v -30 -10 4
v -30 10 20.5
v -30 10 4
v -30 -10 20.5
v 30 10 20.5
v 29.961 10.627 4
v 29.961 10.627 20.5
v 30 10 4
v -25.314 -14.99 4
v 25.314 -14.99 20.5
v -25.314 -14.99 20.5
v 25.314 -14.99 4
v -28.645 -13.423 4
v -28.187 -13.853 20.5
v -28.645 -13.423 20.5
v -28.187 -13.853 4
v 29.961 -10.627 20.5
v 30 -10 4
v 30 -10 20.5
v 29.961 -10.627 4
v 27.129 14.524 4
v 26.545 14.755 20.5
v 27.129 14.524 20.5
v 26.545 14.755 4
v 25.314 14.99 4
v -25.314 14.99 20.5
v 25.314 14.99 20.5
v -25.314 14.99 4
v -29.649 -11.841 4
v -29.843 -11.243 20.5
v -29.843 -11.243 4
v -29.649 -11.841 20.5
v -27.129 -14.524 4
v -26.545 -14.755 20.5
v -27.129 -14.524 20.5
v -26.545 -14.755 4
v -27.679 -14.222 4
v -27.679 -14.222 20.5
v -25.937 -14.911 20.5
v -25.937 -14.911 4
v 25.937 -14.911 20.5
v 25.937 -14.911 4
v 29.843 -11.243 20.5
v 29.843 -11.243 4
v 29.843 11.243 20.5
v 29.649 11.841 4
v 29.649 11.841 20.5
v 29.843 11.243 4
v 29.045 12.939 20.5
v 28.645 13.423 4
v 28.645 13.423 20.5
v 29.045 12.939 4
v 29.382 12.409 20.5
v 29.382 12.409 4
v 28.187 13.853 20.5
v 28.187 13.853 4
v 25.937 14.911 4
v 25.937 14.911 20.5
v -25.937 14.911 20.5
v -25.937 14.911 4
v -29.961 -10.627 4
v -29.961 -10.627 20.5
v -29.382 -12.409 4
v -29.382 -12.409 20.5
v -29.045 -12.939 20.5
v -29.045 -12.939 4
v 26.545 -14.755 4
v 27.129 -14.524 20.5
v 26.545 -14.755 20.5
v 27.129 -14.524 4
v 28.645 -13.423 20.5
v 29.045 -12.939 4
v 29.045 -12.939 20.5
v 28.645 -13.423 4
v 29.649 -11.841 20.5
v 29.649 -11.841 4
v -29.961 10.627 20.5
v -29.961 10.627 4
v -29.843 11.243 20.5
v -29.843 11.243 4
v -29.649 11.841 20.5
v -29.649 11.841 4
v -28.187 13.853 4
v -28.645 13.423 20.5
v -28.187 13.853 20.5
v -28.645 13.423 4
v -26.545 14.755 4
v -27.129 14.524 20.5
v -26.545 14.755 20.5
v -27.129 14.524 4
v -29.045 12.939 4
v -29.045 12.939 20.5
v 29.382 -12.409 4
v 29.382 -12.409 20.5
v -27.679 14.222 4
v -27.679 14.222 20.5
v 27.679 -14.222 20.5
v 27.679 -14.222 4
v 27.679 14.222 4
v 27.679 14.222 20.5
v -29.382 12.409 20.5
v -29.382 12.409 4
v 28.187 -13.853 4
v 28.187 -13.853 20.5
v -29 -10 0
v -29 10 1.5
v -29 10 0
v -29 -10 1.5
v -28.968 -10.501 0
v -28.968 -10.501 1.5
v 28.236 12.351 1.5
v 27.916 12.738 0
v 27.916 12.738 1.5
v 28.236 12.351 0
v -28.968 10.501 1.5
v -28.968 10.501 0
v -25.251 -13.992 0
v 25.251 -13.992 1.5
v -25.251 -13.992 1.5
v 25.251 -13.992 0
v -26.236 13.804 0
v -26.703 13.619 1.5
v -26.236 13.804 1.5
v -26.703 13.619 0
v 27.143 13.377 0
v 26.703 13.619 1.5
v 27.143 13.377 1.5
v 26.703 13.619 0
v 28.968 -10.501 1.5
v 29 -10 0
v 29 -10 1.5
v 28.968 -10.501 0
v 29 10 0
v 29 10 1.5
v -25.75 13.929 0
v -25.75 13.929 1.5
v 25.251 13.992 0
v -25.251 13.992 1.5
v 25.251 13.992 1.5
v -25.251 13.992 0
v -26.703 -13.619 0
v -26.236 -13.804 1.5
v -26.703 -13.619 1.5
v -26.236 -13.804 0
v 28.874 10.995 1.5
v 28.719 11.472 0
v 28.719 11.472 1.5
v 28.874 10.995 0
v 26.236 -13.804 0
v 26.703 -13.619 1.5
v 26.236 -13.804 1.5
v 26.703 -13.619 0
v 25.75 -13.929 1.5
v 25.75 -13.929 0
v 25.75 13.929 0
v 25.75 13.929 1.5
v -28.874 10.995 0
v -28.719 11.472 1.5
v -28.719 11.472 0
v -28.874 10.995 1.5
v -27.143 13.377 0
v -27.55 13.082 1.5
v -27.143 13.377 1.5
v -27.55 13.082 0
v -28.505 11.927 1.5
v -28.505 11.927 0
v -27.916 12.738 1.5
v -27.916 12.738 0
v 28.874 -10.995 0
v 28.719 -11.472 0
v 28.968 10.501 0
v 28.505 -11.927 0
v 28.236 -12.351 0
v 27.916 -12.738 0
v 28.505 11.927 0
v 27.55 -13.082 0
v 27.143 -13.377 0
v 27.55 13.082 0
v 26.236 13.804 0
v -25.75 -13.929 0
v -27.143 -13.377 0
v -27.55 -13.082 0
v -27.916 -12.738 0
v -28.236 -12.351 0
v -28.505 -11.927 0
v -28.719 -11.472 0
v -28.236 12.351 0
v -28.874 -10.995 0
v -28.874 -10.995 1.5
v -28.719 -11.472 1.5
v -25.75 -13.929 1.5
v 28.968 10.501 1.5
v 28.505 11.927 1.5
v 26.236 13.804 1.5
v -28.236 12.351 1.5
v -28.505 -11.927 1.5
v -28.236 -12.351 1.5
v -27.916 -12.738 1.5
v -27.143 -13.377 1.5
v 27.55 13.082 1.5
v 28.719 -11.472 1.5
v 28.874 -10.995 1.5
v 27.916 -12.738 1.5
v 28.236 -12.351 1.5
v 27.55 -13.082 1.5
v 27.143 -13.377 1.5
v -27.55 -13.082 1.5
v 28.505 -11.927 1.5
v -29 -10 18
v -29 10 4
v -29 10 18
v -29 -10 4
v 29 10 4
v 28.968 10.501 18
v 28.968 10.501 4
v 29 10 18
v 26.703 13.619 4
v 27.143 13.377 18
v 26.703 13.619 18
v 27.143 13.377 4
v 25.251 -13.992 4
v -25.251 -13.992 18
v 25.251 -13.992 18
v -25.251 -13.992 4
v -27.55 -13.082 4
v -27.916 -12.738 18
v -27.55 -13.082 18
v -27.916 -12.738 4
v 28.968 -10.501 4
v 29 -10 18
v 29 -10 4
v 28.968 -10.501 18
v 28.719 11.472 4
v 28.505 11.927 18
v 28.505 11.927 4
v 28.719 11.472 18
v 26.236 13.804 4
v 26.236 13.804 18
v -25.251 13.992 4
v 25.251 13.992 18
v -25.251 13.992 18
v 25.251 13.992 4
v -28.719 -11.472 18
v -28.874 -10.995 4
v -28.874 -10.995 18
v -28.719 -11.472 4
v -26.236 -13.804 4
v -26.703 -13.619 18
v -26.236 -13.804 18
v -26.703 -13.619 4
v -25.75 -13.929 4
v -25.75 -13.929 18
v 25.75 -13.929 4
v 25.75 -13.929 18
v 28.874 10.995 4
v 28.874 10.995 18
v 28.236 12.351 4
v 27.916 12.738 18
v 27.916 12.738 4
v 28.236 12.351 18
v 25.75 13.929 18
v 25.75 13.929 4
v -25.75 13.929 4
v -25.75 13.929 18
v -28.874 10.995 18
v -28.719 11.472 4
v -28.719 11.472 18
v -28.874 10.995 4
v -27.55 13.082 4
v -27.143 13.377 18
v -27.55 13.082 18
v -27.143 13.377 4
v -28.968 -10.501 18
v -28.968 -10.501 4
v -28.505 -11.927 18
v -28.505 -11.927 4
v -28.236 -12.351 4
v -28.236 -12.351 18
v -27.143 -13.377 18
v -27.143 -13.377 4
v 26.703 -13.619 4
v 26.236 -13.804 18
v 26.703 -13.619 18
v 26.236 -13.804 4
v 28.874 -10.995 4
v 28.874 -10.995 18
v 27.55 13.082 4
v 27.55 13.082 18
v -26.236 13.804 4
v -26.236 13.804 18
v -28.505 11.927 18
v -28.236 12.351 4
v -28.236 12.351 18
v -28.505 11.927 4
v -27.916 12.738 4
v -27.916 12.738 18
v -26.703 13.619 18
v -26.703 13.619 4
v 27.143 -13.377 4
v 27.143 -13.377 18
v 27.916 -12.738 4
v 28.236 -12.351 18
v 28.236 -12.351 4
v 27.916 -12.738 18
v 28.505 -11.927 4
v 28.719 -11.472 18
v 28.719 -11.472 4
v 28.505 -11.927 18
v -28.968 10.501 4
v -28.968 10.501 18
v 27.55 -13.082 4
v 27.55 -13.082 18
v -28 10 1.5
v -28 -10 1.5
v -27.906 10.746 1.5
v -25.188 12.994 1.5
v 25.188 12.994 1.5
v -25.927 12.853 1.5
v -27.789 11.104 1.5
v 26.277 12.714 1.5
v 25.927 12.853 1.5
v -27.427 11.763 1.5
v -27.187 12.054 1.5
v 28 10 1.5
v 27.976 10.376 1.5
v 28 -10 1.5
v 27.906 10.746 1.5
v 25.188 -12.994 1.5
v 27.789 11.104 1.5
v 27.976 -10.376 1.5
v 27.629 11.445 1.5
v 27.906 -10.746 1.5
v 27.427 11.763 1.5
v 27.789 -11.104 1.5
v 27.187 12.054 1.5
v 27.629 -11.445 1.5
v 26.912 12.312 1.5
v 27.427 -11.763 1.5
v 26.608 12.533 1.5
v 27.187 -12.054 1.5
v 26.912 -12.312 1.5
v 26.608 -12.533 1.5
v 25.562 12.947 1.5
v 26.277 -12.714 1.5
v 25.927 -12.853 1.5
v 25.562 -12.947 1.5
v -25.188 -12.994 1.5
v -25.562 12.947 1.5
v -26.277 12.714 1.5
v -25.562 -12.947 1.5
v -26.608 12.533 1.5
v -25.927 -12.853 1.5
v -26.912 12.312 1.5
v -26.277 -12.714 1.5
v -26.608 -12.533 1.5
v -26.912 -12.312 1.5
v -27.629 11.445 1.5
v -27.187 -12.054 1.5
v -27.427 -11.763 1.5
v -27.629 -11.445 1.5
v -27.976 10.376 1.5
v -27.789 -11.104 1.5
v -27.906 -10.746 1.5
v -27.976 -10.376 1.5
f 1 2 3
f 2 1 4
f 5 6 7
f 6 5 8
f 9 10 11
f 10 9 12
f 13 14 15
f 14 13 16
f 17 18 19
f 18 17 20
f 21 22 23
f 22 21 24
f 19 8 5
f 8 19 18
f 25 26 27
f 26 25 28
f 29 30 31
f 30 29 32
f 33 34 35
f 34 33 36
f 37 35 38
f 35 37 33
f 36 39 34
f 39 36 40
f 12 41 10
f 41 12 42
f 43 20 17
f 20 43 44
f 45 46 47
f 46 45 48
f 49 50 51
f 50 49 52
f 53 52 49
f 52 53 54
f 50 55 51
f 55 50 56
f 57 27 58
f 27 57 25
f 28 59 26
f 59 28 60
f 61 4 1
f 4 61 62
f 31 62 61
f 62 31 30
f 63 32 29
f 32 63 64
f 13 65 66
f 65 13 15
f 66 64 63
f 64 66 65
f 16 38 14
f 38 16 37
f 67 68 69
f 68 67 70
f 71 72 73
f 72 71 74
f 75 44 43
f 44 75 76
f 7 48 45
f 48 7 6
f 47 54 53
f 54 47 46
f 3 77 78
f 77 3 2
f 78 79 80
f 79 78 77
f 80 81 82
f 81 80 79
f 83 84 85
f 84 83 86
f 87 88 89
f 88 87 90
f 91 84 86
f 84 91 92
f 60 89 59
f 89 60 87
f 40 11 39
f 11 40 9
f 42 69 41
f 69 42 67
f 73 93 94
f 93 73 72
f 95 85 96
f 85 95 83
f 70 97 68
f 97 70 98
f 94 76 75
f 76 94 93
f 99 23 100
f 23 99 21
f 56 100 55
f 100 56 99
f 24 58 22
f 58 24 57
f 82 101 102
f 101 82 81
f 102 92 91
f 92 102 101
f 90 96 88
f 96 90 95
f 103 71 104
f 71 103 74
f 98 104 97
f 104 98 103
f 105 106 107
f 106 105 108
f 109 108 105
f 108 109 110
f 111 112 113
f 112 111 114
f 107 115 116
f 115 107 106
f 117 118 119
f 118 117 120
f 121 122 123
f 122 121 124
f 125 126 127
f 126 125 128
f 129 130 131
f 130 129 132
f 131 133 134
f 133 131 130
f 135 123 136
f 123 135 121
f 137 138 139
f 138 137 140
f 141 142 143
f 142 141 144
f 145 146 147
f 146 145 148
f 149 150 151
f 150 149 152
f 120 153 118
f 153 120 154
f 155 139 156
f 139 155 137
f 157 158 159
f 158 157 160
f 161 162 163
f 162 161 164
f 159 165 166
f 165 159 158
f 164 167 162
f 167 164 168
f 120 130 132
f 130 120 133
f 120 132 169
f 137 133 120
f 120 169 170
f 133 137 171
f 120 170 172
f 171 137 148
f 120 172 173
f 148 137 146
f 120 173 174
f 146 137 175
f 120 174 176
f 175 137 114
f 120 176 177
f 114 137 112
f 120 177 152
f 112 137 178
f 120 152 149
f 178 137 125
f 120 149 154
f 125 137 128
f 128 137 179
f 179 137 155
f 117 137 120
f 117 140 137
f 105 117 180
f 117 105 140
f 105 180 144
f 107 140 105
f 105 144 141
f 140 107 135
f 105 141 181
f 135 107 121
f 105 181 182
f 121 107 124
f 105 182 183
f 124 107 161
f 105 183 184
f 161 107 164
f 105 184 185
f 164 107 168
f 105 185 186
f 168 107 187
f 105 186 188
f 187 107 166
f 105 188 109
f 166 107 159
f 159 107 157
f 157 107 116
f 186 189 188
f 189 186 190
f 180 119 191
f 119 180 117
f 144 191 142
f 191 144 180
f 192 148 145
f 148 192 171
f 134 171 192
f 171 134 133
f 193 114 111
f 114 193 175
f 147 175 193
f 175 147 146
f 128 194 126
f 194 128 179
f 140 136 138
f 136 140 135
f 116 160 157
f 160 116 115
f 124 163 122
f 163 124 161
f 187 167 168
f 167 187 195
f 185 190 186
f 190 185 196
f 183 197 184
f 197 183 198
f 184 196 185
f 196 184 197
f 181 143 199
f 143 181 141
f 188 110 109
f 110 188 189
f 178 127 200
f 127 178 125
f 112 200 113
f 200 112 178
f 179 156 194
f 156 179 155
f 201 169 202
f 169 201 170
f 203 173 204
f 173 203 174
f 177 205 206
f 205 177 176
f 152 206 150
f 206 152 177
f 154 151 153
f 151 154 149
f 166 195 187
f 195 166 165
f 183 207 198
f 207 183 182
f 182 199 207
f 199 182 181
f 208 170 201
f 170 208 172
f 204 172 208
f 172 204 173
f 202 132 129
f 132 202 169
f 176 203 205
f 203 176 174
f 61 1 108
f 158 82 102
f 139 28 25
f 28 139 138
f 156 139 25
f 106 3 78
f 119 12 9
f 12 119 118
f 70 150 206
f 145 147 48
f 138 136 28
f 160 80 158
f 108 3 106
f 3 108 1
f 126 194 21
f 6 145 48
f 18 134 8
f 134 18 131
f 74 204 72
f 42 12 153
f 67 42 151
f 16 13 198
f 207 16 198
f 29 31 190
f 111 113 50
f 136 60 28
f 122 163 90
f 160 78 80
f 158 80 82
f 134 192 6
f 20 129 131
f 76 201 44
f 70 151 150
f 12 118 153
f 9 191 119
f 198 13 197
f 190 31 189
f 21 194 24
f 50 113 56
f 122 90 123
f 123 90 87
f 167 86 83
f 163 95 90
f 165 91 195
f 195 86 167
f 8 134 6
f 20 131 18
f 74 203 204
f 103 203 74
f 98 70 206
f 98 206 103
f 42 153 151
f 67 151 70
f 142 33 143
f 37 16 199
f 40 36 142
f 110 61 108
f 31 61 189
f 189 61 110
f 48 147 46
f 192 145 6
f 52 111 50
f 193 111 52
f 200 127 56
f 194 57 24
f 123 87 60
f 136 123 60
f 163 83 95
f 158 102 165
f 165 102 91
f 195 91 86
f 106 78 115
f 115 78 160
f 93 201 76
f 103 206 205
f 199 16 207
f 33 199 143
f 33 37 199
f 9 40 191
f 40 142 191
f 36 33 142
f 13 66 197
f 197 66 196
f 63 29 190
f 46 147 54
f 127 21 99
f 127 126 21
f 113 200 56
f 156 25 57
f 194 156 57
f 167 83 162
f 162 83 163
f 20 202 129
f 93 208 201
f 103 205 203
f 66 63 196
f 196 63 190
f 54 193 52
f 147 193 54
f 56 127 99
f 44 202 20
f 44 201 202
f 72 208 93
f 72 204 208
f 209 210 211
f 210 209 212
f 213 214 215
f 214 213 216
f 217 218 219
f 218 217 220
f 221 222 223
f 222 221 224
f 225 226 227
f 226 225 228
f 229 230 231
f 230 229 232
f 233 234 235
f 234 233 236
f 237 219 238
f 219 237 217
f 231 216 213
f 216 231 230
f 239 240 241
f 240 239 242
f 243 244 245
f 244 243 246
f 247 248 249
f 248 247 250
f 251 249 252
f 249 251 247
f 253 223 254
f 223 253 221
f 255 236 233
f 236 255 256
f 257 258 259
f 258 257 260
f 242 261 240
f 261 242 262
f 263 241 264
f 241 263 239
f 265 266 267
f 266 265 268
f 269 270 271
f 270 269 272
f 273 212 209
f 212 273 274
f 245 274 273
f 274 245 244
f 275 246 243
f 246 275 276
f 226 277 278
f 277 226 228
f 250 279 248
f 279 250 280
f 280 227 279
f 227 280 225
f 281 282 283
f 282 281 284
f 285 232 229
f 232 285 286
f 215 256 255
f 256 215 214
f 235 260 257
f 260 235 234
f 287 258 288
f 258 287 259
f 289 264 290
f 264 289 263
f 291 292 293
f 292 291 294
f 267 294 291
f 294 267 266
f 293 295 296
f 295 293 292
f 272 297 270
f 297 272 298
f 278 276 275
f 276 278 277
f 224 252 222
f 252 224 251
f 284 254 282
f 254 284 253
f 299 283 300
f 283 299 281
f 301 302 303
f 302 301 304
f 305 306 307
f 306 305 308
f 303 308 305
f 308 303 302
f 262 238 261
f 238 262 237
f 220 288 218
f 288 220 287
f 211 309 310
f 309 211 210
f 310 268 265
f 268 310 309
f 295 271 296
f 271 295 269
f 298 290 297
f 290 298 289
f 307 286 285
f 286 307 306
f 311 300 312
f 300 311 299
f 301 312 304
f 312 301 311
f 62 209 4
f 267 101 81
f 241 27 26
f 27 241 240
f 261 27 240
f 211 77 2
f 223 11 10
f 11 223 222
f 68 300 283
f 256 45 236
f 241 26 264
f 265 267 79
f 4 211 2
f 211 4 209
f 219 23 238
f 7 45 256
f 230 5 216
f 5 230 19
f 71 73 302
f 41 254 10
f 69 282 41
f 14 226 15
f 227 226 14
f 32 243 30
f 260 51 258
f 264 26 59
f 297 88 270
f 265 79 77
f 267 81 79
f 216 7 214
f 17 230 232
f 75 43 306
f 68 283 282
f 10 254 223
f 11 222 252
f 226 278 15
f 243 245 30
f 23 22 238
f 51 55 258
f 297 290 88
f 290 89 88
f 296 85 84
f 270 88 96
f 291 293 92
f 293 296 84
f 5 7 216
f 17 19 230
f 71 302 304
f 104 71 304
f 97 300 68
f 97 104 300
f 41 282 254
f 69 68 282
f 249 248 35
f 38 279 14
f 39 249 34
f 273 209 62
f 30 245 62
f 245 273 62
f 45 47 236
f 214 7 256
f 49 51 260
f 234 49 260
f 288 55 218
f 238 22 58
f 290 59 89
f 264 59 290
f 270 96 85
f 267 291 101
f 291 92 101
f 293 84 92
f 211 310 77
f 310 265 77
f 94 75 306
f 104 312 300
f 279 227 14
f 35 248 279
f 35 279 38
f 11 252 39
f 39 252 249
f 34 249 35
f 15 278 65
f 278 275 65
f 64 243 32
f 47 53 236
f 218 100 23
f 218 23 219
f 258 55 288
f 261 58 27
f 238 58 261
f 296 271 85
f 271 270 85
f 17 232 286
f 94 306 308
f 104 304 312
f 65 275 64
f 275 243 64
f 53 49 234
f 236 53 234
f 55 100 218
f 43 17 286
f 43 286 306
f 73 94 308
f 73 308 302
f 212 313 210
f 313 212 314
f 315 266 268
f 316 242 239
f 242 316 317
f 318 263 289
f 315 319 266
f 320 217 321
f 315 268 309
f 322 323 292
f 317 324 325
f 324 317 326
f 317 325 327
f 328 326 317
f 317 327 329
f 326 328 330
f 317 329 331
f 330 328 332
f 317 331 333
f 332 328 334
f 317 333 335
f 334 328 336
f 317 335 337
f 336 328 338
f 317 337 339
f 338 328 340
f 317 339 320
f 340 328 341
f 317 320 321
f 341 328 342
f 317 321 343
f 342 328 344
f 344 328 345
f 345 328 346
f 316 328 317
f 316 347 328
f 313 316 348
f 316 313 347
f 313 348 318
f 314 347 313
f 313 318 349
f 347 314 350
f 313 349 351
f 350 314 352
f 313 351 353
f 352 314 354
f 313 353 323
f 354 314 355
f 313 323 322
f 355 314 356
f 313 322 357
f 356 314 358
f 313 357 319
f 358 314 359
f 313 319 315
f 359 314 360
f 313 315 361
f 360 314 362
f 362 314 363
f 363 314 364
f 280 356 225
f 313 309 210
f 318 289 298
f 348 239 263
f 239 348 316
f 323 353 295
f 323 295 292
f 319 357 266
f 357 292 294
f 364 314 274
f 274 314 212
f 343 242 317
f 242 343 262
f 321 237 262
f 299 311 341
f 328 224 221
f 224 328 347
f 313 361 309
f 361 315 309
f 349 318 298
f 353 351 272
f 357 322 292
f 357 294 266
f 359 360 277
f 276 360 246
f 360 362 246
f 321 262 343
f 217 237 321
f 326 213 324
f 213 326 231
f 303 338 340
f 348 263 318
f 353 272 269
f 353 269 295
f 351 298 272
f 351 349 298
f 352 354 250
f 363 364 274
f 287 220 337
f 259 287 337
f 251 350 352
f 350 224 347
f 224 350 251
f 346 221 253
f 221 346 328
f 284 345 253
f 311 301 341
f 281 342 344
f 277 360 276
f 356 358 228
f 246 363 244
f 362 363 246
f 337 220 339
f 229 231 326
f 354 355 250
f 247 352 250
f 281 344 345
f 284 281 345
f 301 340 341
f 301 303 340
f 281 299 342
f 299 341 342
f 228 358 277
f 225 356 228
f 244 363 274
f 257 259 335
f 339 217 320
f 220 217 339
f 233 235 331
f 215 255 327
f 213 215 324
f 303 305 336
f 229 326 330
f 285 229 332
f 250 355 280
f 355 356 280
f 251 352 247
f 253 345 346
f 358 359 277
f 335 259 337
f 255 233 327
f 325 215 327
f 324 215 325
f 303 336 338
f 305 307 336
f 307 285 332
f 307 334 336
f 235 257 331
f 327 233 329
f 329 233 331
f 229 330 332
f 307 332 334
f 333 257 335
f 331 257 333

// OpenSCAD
$fn = 50;


difference() {
	union() {
		translate(v = [0, 0, 4.0000000000]) {
			hull() {
				translate(v = [-25.0000000000, 10.0000000000, 0]) {
					cylinder(h = 16.5000000000, r = 5);
				}
				translate(v = [25.0000000000, 10.0000000000, 0]) {
					cylinder(h = 16.5000000000, r = 5);
				}
				translate(v = [-25.0000000000, -10.0000000000, 0]) {
					cylinder(h = 16.5000000000, r = 5);
				}
				translate(v = [25.0000000000, -10.0000000000, 0]) {
					cylinder(h = 16.5000000000, r = 5);
				}
			}
		}
		hull() {
			translate(v = [-25.0000000000, 10.0000000000, 0]) {
				cylinder(h = 1.5000000000, r = 4);
			}
			translate(v = [25.0000000000, 10.0000000000, 0]) {
				cylinder(h = 1.5000000000, r = 4);
			}
			translate(v = [-25.0000000000, -10.0000000000, 0]) {
				cylinder(h = 1.5000000000, r = 4);
			}
			translate(v = [25.0000000000, -10.0000000000, 0]) {
				cylinder(h = 1.5000000000, r = 4);
			}
		}
		translate(v = [0, 0, 1.5000000000]) {
			hull() {
				translate(v = [-25.0000000000, 10.0000000000, 0]) {
					cylinder(h = 2.5000000000, r1 = 4, r2 = 5.0000000000);
				}
				translate(v = [25.0000000000, 10.0000000000, 0]) {
					cylinder(h = 2.5000000000, r1 = 4, r2 = 5.0000000000);
				}
				translate(v = [-25.0000000000, -10.0000000000, 0]) {
					cylinder(h = 2.5000000000, r1 = 4, r2 = 5.0000000000);
				}
				translate(v = [25.0000000000, -10.0000000000, 0]) {
					cylinder(h = 2.5000000000, r1 = 4, r2 = 5.0000000000);
				}
			}
		}
	}
	union() {
		translate(v = [0, 0, 4.0000000000]) {
			#hull() {
				translate(v = [-25.0000000000, 10.0000000000, 0]) {
					cylinder(h = 16.5000000000, r = 4);
				}
				translate(v = [25.0000000000, 10.0000000000, 0]) {
					cylinder(h = 16.5000000000, r = 4);
				}
				translate(v = [-25.0000000000, -10.0000000000, 0]) {
					cylinder(h = 16.5000000000, r = 4);
				}
				translate(v = [25.0000000000, -10.0000000000, 0]) {
					cylinder(h = 16.5000000000, r = 4);
				}
			}
		}
		translate(v = [0, 0, 18]) {
			hull() {
				translate(v = [-25.0000000000, 10.0000000000, 0]) {
					cylinder(h = 2.5000000000, r1 = 4, r2 = 5.0000000000);
				}
				translate(v = [25.0000000000, 10.0000000000, 0]) {
					cylinder(h = 2.5000000000, r1 = 4, r2 = 5.0000000000);
				}
				translate(v = [-25.0000000000, -10.0000000000, 0]) {
					cylinder(h = 2.5000000000, r1 = 4, r2 = 5.0000000000);
				}
				translate(v = [25.0000000000, -10.0000000000, 0]) {
					cylinder(h = 2.5000000000, r1 = 4, r2 = 5.0000000000);
				}
			}
		}
		translate(v = [0, 0, 1.5000000000]) {
			#hull() {
				translate(v = [-25.0000000000, 10.0000000000, 0]) {
					cylinder(h = 2.5000000000, r1 = 3, r2 = 4.0000000000);
				}
				translate(v = [25.0000000000, 10.0000000000, 0]) {
					cylinder(h = 2.5000000000, r1 = 3, r2 = 4.0000000000);
				}
				translate(v = [-25.0000000000, -10.0000000000, 0]) {
					cylinder(h = 2.5000000000, r1 = 3, r2 = 4.0000000000);
				}
				translate(v = [25.0000000000, -10.0000000000, 0]) {
					cylinder(h = 2.5000000000, r1 = 3, r2 = 4.0000000000);
				}
			}
		}
	}
}
